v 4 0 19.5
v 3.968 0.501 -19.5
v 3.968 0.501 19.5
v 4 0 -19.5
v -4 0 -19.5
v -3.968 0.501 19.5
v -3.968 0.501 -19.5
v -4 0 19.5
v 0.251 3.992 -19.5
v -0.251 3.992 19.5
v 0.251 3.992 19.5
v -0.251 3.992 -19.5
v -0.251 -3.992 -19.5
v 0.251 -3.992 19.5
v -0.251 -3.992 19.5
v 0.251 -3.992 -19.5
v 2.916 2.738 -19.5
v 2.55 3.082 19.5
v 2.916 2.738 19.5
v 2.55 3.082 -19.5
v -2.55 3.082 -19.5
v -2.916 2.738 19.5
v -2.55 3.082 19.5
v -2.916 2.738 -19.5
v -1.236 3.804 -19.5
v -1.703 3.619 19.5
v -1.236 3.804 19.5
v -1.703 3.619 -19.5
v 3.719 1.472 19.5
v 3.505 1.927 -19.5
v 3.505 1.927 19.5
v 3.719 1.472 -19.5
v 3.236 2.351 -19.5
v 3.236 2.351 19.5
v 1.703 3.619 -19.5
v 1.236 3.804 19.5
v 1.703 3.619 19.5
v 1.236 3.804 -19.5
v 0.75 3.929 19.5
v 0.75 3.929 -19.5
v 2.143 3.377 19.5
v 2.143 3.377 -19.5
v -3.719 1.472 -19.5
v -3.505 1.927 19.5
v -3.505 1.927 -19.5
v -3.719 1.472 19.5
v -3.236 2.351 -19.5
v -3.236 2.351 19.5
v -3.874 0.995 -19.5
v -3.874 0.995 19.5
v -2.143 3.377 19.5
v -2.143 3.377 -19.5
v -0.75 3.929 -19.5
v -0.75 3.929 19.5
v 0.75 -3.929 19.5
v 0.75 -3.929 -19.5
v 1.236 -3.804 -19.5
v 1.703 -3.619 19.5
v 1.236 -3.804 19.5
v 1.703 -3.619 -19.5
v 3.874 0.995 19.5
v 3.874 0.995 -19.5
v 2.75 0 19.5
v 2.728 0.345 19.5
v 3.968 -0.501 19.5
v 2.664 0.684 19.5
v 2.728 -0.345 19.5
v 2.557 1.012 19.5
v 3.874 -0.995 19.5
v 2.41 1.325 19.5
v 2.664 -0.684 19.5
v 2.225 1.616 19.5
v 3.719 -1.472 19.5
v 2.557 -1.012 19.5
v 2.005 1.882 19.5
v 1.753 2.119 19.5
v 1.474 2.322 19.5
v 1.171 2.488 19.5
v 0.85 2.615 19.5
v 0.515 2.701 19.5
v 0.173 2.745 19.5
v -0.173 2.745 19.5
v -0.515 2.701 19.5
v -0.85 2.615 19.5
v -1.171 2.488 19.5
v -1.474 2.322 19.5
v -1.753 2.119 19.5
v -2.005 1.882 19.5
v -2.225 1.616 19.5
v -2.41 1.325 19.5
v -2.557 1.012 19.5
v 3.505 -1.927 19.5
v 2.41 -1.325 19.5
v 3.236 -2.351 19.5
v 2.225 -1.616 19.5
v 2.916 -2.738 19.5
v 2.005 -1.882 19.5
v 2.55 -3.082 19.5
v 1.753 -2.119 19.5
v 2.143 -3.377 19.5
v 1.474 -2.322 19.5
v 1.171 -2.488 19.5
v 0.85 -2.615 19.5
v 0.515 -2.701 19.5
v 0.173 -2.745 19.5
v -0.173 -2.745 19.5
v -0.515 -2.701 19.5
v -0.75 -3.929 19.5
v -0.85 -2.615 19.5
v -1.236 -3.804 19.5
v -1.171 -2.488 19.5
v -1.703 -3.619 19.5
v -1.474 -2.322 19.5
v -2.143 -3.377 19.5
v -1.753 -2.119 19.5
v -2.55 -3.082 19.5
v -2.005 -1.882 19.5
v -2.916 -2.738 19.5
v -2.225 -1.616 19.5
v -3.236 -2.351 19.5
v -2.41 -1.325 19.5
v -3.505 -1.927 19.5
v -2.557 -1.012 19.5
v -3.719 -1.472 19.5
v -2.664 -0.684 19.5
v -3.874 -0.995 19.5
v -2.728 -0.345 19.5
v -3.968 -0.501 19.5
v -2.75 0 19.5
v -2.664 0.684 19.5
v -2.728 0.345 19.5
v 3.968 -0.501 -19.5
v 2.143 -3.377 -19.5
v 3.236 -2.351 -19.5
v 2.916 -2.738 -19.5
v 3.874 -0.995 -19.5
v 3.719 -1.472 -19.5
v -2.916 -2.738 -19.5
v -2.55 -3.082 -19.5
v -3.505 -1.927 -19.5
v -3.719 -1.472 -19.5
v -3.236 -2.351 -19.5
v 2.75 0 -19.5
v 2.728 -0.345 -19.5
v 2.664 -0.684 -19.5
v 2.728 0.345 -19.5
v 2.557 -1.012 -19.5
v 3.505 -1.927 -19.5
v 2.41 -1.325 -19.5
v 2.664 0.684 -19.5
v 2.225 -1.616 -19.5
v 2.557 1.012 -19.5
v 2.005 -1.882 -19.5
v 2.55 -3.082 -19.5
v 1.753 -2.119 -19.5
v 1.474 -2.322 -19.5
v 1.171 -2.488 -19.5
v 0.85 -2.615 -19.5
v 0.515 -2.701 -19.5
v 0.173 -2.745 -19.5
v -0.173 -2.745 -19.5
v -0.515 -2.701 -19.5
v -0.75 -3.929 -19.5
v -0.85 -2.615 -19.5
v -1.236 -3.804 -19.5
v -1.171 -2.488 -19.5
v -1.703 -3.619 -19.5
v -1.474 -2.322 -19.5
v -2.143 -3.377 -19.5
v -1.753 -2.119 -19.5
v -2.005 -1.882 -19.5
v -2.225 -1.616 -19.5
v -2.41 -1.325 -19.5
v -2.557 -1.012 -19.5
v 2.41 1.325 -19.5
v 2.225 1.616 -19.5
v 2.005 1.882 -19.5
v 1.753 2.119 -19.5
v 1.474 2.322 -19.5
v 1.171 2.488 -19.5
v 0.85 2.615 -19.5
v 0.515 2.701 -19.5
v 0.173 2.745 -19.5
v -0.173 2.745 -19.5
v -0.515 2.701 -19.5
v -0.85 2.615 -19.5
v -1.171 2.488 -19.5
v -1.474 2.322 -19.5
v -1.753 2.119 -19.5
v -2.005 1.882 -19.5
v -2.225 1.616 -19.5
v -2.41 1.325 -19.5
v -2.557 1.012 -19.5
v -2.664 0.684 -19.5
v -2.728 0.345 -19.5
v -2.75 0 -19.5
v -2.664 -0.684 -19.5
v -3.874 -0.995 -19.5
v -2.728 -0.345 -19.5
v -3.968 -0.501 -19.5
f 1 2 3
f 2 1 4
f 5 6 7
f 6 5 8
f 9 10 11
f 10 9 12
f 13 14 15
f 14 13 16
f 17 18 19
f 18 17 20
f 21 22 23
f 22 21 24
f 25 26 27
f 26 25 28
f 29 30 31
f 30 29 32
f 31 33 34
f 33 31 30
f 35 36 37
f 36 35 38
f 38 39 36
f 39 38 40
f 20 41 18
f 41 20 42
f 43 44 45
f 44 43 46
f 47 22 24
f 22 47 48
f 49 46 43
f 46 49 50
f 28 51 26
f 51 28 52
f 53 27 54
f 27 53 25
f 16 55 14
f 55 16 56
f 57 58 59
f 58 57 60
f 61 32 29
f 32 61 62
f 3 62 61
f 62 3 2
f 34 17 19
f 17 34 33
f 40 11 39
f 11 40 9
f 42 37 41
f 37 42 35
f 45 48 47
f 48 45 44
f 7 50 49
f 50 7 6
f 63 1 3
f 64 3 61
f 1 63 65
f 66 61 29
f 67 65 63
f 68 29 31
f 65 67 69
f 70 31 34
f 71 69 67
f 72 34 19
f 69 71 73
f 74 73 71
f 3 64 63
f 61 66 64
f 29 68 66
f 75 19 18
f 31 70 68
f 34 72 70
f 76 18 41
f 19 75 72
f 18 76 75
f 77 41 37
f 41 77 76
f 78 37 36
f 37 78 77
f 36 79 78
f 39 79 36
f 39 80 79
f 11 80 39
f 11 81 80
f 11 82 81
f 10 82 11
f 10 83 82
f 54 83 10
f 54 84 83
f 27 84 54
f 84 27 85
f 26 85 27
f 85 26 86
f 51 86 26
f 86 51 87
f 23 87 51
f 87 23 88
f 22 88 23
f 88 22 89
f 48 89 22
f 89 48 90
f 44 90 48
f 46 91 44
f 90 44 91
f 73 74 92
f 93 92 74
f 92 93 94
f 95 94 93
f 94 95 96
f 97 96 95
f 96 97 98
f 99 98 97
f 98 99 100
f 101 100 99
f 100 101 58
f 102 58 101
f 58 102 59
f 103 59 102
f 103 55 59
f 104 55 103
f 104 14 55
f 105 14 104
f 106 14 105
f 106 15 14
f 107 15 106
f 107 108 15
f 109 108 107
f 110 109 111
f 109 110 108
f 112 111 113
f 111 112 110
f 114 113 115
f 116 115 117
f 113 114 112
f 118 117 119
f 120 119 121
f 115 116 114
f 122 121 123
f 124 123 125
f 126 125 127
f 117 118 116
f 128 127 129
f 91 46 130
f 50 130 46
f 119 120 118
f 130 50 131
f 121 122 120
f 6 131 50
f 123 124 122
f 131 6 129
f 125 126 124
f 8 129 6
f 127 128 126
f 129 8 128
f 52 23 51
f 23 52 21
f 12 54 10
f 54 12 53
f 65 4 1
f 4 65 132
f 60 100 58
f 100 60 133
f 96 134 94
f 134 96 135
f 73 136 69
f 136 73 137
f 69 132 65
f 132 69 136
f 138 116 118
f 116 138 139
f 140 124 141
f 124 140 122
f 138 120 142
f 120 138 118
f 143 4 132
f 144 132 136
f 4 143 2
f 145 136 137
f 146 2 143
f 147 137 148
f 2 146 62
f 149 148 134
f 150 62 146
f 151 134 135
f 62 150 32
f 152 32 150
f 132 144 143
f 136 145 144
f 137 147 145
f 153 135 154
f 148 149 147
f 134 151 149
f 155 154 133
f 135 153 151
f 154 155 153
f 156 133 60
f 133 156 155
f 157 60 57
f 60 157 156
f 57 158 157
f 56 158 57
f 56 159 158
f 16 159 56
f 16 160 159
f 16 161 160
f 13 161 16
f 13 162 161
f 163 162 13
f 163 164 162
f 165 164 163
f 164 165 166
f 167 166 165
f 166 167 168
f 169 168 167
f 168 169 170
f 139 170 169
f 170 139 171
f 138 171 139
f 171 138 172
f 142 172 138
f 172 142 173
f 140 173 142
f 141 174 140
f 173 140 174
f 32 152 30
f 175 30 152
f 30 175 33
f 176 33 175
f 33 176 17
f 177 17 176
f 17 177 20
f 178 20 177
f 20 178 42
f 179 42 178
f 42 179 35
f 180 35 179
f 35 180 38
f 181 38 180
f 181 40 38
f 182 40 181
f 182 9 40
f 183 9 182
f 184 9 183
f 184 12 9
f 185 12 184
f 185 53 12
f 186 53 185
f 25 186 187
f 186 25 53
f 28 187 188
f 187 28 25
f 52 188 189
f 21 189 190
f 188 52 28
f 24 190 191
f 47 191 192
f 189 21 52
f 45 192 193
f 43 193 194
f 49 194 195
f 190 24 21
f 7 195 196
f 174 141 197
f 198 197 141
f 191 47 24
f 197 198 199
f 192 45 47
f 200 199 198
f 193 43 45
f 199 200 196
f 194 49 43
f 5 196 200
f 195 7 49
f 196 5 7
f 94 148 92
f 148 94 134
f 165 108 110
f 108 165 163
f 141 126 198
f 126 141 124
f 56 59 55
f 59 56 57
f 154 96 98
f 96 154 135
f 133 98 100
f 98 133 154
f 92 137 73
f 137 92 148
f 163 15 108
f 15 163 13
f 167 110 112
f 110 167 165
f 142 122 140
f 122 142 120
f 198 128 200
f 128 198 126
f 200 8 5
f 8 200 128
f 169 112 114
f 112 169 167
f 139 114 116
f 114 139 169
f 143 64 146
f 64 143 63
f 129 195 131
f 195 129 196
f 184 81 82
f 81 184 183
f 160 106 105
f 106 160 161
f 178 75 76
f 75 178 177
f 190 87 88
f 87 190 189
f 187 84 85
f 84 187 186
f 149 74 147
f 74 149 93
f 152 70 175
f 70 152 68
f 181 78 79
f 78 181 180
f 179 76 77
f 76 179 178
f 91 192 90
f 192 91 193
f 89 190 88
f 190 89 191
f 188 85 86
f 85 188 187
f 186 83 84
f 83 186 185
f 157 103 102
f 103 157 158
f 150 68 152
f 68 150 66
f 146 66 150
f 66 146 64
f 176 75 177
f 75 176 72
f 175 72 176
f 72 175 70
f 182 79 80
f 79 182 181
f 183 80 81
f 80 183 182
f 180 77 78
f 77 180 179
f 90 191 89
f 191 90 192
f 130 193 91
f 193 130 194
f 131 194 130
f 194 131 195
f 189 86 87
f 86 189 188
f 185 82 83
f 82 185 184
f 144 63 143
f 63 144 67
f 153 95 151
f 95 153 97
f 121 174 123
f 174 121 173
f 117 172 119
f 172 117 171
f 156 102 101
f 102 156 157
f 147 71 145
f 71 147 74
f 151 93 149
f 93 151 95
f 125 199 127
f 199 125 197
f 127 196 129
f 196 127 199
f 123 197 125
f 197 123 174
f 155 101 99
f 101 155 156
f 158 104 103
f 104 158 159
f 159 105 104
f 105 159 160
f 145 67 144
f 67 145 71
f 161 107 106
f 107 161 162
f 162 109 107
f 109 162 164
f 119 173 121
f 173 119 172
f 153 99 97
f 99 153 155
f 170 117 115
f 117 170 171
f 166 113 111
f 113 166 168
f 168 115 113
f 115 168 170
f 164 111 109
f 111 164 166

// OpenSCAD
$fn = 50;


difference() {
	union() {
		translate(v = [0, 0, -19.5000000000]) {
			cylinder(h = 39, r = 4.0000000000);
		}
	}
	union() {
		translate(v = [0, 0, -100.0000000000]) {
			cylinder(h = 200, r = 2.7500000000);
		}
	}
}
